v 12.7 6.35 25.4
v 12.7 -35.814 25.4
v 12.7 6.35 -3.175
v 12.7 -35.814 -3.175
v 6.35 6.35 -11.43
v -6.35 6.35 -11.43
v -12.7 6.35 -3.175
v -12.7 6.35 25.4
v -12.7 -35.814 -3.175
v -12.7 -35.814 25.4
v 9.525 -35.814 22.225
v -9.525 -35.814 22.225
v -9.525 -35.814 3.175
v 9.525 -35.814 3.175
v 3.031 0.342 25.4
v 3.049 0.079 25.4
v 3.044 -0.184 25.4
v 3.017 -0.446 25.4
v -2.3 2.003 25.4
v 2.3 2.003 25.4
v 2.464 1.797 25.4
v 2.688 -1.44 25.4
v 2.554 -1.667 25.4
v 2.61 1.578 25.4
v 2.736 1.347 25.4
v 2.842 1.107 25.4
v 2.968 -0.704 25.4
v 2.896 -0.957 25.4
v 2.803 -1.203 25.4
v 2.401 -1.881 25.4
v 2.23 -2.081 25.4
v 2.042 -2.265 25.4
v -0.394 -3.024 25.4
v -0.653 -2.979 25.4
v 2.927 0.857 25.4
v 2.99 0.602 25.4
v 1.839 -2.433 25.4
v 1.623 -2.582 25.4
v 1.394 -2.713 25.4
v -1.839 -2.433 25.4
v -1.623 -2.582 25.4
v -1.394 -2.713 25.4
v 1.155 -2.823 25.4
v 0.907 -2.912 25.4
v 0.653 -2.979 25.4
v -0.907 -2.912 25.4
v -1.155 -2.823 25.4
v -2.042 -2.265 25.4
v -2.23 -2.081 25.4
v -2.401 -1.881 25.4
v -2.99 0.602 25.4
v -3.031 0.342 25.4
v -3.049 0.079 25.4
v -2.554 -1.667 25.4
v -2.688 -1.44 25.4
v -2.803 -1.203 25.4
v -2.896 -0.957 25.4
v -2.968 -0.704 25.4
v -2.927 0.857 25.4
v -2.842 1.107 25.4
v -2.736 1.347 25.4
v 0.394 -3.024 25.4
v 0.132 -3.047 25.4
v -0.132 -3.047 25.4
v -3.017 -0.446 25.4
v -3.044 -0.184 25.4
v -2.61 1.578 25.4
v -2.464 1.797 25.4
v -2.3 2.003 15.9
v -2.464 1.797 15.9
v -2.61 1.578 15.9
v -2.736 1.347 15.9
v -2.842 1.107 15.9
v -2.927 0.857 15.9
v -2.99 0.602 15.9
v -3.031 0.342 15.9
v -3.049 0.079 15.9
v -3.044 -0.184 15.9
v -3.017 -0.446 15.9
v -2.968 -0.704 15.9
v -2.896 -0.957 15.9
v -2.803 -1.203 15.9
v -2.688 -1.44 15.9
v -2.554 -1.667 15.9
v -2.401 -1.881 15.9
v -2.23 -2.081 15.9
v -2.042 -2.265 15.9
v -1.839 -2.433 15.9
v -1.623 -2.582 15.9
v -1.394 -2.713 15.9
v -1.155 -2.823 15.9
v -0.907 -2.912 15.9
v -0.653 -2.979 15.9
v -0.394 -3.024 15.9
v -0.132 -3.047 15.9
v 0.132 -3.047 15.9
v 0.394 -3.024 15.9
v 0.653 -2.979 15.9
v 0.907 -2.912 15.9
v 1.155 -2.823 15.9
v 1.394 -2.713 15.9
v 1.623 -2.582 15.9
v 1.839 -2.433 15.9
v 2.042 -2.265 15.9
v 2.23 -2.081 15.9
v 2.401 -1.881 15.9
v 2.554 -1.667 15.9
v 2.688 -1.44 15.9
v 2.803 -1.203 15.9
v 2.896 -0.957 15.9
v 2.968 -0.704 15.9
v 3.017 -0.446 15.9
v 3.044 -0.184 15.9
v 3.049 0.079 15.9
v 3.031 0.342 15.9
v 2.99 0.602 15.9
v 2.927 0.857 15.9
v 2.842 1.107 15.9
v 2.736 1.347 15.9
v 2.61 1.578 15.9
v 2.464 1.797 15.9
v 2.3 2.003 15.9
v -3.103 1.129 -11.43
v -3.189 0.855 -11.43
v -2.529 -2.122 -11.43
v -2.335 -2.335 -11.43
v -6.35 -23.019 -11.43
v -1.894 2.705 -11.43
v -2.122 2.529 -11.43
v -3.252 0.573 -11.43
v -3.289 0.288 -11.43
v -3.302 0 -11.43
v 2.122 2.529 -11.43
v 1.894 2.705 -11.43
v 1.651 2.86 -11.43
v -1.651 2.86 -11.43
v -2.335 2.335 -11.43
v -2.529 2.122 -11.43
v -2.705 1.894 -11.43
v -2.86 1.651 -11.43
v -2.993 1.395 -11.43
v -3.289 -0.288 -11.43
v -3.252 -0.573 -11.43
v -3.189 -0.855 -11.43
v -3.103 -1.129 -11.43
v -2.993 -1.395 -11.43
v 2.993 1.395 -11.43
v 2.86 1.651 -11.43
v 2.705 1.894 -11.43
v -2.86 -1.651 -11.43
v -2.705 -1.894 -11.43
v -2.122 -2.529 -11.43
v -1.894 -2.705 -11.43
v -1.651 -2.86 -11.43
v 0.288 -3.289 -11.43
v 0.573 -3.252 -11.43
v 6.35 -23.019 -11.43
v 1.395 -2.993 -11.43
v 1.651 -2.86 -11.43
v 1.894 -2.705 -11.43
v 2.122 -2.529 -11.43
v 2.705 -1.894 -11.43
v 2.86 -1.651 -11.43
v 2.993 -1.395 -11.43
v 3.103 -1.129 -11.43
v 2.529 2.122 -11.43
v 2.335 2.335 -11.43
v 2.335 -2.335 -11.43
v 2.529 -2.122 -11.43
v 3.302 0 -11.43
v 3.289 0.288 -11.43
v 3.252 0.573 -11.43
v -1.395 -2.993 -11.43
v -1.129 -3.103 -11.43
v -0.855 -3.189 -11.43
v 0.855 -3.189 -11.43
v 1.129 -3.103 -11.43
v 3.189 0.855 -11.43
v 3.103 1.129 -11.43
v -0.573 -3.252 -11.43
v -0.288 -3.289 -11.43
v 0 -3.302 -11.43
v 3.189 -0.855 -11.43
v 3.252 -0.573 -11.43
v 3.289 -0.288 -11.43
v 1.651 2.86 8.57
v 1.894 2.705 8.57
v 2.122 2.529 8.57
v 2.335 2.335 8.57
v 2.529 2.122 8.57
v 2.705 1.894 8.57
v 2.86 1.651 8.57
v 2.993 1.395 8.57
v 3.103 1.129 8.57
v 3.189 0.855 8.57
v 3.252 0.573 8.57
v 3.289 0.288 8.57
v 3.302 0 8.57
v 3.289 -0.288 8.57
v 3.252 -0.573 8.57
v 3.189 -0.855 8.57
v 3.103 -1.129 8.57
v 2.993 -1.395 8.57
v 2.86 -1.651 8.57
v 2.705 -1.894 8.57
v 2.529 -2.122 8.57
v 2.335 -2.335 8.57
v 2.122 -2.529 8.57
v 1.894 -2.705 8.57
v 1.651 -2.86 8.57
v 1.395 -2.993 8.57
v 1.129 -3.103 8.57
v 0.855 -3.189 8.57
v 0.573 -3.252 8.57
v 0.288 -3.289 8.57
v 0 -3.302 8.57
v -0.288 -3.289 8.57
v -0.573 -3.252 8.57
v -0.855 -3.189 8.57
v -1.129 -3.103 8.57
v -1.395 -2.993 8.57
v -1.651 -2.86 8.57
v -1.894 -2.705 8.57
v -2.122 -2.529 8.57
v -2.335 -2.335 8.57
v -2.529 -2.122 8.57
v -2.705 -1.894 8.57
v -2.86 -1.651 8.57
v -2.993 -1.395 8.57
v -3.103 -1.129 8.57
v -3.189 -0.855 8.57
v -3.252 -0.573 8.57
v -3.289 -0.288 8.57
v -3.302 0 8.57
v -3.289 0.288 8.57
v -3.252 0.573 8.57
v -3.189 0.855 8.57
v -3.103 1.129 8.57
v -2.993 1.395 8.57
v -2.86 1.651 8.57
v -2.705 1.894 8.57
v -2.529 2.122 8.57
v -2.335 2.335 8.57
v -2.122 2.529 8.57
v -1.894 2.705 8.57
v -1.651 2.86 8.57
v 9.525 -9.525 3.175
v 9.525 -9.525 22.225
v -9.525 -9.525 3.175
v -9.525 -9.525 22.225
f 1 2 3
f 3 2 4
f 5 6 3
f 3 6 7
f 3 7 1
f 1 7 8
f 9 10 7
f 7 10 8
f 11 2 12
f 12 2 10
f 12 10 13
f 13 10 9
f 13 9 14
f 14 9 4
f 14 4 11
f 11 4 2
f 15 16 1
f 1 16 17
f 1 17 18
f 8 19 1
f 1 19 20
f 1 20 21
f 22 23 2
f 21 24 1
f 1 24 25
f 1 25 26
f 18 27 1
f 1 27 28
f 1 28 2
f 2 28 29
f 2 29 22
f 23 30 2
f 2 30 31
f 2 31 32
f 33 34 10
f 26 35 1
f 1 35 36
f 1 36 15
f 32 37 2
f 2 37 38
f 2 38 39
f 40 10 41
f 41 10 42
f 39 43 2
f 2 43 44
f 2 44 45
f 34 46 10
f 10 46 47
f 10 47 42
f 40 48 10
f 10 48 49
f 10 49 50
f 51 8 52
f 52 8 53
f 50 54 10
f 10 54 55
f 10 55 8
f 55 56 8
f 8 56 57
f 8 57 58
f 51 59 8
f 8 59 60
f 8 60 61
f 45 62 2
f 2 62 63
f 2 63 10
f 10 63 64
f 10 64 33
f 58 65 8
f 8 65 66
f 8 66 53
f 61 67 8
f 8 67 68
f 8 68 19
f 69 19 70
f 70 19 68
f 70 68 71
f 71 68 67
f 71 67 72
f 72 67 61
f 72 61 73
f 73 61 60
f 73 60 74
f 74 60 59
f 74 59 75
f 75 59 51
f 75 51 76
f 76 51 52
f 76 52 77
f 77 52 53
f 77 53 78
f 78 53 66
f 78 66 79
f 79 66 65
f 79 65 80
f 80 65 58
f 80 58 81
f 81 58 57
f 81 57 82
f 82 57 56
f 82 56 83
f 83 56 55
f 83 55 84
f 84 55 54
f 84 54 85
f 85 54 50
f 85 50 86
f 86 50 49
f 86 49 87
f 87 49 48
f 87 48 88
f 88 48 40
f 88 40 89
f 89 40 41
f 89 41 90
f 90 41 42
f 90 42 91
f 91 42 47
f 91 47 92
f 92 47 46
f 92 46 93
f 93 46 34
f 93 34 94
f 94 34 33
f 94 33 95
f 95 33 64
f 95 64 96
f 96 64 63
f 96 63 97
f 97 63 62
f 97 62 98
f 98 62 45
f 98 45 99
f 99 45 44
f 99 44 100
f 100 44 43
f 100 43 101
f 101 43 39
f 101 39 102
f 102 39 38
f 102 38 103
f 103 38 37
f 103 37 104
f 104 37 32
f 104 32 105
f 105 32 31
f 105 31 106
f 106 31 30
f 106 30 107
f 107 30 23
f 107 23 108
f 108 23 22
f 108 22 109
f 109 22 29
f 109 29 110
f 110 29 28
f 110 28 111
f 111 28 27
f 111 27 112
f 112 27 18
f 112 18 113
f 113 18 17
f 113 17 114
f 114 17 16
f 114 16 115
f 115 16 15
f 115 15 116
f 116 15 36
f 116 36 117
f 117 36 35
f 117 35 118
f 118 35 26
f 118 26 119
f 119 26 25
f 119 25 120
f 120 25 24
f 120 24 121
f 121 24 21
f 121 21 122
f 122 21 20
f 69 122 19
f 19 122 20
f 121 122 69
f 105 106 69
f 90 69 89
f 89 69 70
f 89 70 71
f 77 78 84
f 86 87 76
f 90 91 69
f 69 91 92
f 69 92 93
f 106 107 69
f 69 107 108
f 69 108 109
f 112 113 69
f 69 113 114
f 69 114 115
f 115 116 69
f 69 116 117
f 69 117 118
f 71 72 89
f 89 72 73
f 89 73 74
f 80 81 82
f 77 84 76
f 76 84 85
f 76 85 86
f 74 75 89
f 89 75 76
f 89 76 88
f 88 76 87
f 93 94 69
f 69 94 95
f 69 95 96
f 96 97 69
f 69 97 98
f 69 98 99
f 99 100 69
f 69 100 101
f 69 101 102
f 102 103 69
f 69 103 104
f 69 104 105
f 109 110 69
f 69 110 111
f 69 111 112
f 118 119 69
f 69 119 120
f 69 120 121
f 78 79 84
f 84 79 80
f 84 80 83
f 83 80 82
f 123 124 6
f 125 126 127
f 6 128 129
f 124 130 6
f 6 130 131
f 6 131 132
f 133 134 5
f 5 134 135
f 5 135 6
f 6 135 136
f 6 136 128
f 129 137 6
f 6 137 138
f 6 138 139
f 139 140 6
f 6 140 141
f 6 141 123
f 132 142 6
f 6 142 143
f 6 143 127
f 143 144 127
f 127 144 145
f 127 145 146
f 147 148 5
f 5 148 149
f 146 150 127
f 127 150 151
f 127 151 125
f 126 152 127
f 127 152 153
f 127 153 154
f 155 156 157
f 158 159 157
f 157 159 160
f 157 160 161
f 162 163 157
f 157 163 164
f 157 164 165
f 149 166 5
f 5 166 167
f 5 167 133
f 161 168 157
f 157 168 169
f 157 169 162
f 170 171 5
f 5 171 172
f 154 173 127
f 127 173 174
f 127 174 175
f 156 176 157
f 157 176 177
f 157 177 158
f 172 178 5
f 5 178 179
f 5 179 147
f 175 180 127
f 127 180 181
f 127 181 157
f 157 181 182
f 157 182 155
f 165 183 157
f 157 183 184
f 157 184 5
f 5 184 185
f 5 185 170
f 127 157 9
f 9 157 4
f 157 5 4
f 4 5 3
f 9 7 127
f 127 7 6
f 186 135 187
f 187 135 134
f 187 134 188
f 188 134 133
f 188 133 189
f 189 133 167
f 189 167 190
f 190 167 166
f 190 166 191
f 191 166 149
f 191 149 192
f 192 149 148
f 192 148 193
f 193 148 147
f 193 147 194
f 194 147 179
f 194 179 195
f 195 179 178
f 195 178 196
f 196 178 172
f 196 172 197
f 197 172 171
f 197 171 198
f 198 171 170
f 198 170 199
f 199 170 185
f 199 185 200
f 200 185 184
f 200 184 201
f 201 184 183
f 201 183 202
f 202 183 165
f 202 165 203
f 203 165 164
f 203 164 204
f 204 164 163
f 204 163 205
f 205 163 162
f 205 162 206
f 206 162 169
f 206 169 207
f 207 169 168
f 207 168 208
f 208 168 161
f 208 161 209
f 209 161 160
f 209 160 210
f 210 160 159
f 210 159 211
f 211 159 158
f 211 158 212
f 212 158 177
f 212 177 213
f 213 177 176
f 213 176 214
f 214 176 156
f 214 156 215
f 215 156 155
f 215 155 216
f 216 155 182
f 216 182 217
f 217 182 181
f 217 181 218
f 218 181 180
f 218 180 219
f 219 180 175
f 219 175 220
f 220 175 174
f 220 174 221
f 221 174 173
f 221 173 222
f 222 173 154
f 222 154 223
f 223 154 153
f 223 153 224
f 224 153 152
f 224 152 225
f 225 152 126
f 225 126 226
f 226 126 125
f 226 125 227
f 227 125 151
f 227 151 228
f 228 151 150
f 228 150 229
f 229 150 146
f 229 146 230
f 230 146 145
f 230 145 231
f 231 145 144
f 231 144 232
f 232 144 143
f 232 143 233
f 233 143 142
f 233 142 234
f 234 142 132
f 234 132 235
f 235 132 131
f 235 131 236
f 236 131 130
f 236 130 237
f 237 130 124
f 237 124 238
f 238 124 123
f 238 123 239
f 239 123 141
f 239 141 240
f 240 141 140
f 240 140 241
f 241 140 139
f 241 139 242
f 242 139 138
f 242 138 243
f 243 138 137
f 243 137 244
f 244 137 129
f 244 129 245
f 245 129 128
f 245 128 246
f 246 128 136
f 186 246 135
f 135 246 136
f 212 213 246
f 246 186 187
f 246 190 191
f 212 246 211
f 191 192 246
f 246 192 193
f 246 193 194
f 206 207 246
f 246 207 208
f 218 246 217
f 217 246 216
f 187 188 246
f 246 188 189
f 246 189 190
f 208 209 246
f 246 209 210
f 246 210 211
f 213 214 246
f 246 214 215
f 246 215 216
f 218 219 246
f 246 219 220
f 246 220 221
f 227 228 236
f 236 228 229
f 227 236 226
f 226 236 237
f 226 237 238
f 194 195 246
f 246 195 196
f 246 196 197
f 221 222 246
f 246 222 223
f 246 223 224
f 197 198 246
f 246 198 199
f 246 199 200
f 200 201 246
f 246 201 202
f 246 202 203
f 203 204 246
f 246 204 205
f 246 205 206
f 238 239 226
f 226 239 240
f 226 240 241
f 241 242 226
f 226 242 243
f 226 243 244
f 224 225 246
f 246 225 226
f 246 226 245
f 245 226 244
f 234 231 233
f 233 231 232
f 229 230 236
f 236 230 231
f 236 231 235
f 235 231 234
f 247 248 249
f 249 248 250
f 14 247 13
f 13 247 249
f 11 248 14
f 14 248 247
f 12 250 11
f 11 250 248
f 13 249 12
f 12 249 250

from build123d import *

# Parameters (mm, degrees)
BOSS_EXTRUDE1_DEPTH = 25.4
CUT_EXTRUDE1_DEPTH  = 9.5
SKETCH5_W           = 25.4
SKETCH5_H           = 42.164
BOSS_EXTRUDE2_DEPTH = 11.43
CUT_EXTRUDE2_REACH  = 53.538
CUT_EXTRUDE3_REACH  = 53.255
CUT_EXTRUDE4_DEPTH  = 20
SKETCH10_W          = 19.05
SKETCH10_H          = 19.05
CUT_EXTRUDE5_DEPTH  = 26.289
CUT_EXTRUDE6_REACH  = 55.322
SKETCH11_W          = 1.5875
SKETCH11_H          = 12.7


with BuildPart() as part:
    # Sketch2 → Boss-Extrude1 (new body)
    with BuildSketch(Plane.XY):
        Polygon((12.7, -6.35), (14.2875, -6.35), (14.2875, 6.35), (-14.2875, 6.35), (-14.2875, -6.35), (-12.7, -6.35), (-12.7, -35.814), (12.7, -35.814), align=None)
    extrude(amount=BOSS_EXTRUDE1_DEPTH)

    # Sketch3 → Cut-Extrude1 (cut)
    with BuildSketch(Plane.XY.offset(25.4)):
        with BuildLine():
            Line((-2.3, 2.003122562), (2.3, 2.003122562))
            ThreePointArc((2.3, 2.003122562), (0, -3.05), (-2.3, 2.003122562))
        make_face()
    extrude(amount=-CUT_EXTRUDE1_DEPTH, mode=Mode.SUBTRACT)

    # Sketch5 → Boss-Extrude2 (add)
    with BuildSketch(Plane(origin=(0, 0, 0), x_dir=(-1, 0, 0), z_dir=(0, 0, -1))):
        with Locations((0, -14.732)):
            Rectangle(SKETCH5_W, SKETCH5_H)
    extrude(amount=BOSS_EXTRUDE2_DEPTH)

    # Sketch6 → Cut-Extrude2 (cut, up to next)
    with BuildSketch(Plane(origin=(12.7, 0, 0), x_dir=(0, 0, -1), z_dir=(1, 0, 0)), mode=Mode.PRIVATE) as cut_extrude2_sk1:
        Polygon((3.175, -35.814), (11.43, -23.01875), (11.43, -35.814), align=None)
    cut_extrude2_tool1 = extrude(cut_extrude2_sk1.sketch, amount=-CUT_EXTRUDE2_REACH, mode=Mode.PRIVATE) & part.part
    add(cut_extrude2_tool1.solids().sort_by_distance((12.7, -31.548917, -8.678333))[0], mode=Mode.SUBTRACT)

    # Sketch7 → Cut-Extrude3 (cut, up to next)
    with BuildSketch(Plane.XZ.offset(35.814), mode=Mode.PRIVATE) as cut_extrude3_sk1:
        Polygon((-12.7, -11.43), (-12.7, -3.175), (-6.35, -11.43), align=None)
    cut_extrude3_tool1 = extrude(cut_extrude3_sk1.sketch, amount=-CUT_EXTRUDE3_REACH, mode=Mode.PRIVATE) & part.part
    # Sketch7 → Cut-Extrude3 (cut, up to next)
    with BuildSketch(Plane.XZ.offset(35.814), mode=Mode.PRIVATE) as cut_extrude3_sk2:
        Polygon((6.35, -11.43), (12.7, -3.175), (12.7, -11.43), align=None)
    cut_extrude3_tool2 = extrude(cut_extrude3_sk2.sketch, amount=-CUT_EXTRUDE3_REACH, mode=Mode.PRIVATE) & part.part
    add(cut_extrude3_tool1.solids().sort_by_distance((-10.583333, -35.814, -8.678333))[0], mode=Mode.SUBTRACT)
    add(cut_extrude3_tool2.solids().sort_by_distance((10.583333, -35.814, -8.678333))[0], mode=Mode.SUBTRACT)

    # Sketch8 → Cut-Extrude4 (cut)
    with BuildSketch(Plane(origin=(0, 0, -11.43), x_dir=(-1, 0, 0), z_dir=(0, 0, -1))):
        with BuildLine():
            Line((-1.651, 2.859615883), (1.651, 2.859615883))
            ThreePointArc((1.651, 2.859615883), (0, -3.302), (-1.651, 2.859615883))
        make_face()
    extrude(amount=-CUT_EXTRUDE4_DEPTH, mode=Mode.SUBTRACT)

    # Sketch10 → Cut-Extrude5 (cut)
    with BuildSketch(Plane.XZ.offset(35.814)):
        with Locations((0, 12.7)):
            Rectangle(SKETCH10_W, SKETCH10_H)
    extrude(amount=-CUT_EXTRUDE5_DEPTH, mode=Mode.SUBTRACT)

    # Sketch11 → Cut-Extrude6 (cut, up to next)
    with BuildSketch(Plane.XY.offset(25.4), mode=Mode.PRIVATE) as cut_extrude6_sk1:
        with Locations((-13.49375, 0)):
            Rectangle(SKETCH11_W, SKETCH11_H)
    cut_extrude6_tool1 = extrude(cut_extrude6_sk1.sketch, amount=-CUT_EXTRUDE6_REACH, mode=Mode.PRIVATE) & part.part
    # Sketch11 → Cut-Extrude6 (cut, up to next)
    with BuildSketch(Plane.XY.offset(25.4), mode=Mode.PRIVATE) as cut_extrude6_sk2:
        with Locations((13.49375, 0)):
            Rectangle(SKETCH11_W, SKETCH11_H)
    cut_extrude6_tool2 = extrude(cut_extrude6_sk2.sketch, amount=-CUT_EXTRUDE6_REACH, mode=Mode.PRIVATE) & part.part
    add(cut_extrude6_tool1.solids().sort_by_distance((-13.49375, 0, 25.4))[0], mode=Mode.SUBTRACT)
    add(cut_extrude6_tool2.solids().sort_by_distance((13.49375, 0, 25.4))[0], mode=Mode.SUBTRACT)


solid = part.part
